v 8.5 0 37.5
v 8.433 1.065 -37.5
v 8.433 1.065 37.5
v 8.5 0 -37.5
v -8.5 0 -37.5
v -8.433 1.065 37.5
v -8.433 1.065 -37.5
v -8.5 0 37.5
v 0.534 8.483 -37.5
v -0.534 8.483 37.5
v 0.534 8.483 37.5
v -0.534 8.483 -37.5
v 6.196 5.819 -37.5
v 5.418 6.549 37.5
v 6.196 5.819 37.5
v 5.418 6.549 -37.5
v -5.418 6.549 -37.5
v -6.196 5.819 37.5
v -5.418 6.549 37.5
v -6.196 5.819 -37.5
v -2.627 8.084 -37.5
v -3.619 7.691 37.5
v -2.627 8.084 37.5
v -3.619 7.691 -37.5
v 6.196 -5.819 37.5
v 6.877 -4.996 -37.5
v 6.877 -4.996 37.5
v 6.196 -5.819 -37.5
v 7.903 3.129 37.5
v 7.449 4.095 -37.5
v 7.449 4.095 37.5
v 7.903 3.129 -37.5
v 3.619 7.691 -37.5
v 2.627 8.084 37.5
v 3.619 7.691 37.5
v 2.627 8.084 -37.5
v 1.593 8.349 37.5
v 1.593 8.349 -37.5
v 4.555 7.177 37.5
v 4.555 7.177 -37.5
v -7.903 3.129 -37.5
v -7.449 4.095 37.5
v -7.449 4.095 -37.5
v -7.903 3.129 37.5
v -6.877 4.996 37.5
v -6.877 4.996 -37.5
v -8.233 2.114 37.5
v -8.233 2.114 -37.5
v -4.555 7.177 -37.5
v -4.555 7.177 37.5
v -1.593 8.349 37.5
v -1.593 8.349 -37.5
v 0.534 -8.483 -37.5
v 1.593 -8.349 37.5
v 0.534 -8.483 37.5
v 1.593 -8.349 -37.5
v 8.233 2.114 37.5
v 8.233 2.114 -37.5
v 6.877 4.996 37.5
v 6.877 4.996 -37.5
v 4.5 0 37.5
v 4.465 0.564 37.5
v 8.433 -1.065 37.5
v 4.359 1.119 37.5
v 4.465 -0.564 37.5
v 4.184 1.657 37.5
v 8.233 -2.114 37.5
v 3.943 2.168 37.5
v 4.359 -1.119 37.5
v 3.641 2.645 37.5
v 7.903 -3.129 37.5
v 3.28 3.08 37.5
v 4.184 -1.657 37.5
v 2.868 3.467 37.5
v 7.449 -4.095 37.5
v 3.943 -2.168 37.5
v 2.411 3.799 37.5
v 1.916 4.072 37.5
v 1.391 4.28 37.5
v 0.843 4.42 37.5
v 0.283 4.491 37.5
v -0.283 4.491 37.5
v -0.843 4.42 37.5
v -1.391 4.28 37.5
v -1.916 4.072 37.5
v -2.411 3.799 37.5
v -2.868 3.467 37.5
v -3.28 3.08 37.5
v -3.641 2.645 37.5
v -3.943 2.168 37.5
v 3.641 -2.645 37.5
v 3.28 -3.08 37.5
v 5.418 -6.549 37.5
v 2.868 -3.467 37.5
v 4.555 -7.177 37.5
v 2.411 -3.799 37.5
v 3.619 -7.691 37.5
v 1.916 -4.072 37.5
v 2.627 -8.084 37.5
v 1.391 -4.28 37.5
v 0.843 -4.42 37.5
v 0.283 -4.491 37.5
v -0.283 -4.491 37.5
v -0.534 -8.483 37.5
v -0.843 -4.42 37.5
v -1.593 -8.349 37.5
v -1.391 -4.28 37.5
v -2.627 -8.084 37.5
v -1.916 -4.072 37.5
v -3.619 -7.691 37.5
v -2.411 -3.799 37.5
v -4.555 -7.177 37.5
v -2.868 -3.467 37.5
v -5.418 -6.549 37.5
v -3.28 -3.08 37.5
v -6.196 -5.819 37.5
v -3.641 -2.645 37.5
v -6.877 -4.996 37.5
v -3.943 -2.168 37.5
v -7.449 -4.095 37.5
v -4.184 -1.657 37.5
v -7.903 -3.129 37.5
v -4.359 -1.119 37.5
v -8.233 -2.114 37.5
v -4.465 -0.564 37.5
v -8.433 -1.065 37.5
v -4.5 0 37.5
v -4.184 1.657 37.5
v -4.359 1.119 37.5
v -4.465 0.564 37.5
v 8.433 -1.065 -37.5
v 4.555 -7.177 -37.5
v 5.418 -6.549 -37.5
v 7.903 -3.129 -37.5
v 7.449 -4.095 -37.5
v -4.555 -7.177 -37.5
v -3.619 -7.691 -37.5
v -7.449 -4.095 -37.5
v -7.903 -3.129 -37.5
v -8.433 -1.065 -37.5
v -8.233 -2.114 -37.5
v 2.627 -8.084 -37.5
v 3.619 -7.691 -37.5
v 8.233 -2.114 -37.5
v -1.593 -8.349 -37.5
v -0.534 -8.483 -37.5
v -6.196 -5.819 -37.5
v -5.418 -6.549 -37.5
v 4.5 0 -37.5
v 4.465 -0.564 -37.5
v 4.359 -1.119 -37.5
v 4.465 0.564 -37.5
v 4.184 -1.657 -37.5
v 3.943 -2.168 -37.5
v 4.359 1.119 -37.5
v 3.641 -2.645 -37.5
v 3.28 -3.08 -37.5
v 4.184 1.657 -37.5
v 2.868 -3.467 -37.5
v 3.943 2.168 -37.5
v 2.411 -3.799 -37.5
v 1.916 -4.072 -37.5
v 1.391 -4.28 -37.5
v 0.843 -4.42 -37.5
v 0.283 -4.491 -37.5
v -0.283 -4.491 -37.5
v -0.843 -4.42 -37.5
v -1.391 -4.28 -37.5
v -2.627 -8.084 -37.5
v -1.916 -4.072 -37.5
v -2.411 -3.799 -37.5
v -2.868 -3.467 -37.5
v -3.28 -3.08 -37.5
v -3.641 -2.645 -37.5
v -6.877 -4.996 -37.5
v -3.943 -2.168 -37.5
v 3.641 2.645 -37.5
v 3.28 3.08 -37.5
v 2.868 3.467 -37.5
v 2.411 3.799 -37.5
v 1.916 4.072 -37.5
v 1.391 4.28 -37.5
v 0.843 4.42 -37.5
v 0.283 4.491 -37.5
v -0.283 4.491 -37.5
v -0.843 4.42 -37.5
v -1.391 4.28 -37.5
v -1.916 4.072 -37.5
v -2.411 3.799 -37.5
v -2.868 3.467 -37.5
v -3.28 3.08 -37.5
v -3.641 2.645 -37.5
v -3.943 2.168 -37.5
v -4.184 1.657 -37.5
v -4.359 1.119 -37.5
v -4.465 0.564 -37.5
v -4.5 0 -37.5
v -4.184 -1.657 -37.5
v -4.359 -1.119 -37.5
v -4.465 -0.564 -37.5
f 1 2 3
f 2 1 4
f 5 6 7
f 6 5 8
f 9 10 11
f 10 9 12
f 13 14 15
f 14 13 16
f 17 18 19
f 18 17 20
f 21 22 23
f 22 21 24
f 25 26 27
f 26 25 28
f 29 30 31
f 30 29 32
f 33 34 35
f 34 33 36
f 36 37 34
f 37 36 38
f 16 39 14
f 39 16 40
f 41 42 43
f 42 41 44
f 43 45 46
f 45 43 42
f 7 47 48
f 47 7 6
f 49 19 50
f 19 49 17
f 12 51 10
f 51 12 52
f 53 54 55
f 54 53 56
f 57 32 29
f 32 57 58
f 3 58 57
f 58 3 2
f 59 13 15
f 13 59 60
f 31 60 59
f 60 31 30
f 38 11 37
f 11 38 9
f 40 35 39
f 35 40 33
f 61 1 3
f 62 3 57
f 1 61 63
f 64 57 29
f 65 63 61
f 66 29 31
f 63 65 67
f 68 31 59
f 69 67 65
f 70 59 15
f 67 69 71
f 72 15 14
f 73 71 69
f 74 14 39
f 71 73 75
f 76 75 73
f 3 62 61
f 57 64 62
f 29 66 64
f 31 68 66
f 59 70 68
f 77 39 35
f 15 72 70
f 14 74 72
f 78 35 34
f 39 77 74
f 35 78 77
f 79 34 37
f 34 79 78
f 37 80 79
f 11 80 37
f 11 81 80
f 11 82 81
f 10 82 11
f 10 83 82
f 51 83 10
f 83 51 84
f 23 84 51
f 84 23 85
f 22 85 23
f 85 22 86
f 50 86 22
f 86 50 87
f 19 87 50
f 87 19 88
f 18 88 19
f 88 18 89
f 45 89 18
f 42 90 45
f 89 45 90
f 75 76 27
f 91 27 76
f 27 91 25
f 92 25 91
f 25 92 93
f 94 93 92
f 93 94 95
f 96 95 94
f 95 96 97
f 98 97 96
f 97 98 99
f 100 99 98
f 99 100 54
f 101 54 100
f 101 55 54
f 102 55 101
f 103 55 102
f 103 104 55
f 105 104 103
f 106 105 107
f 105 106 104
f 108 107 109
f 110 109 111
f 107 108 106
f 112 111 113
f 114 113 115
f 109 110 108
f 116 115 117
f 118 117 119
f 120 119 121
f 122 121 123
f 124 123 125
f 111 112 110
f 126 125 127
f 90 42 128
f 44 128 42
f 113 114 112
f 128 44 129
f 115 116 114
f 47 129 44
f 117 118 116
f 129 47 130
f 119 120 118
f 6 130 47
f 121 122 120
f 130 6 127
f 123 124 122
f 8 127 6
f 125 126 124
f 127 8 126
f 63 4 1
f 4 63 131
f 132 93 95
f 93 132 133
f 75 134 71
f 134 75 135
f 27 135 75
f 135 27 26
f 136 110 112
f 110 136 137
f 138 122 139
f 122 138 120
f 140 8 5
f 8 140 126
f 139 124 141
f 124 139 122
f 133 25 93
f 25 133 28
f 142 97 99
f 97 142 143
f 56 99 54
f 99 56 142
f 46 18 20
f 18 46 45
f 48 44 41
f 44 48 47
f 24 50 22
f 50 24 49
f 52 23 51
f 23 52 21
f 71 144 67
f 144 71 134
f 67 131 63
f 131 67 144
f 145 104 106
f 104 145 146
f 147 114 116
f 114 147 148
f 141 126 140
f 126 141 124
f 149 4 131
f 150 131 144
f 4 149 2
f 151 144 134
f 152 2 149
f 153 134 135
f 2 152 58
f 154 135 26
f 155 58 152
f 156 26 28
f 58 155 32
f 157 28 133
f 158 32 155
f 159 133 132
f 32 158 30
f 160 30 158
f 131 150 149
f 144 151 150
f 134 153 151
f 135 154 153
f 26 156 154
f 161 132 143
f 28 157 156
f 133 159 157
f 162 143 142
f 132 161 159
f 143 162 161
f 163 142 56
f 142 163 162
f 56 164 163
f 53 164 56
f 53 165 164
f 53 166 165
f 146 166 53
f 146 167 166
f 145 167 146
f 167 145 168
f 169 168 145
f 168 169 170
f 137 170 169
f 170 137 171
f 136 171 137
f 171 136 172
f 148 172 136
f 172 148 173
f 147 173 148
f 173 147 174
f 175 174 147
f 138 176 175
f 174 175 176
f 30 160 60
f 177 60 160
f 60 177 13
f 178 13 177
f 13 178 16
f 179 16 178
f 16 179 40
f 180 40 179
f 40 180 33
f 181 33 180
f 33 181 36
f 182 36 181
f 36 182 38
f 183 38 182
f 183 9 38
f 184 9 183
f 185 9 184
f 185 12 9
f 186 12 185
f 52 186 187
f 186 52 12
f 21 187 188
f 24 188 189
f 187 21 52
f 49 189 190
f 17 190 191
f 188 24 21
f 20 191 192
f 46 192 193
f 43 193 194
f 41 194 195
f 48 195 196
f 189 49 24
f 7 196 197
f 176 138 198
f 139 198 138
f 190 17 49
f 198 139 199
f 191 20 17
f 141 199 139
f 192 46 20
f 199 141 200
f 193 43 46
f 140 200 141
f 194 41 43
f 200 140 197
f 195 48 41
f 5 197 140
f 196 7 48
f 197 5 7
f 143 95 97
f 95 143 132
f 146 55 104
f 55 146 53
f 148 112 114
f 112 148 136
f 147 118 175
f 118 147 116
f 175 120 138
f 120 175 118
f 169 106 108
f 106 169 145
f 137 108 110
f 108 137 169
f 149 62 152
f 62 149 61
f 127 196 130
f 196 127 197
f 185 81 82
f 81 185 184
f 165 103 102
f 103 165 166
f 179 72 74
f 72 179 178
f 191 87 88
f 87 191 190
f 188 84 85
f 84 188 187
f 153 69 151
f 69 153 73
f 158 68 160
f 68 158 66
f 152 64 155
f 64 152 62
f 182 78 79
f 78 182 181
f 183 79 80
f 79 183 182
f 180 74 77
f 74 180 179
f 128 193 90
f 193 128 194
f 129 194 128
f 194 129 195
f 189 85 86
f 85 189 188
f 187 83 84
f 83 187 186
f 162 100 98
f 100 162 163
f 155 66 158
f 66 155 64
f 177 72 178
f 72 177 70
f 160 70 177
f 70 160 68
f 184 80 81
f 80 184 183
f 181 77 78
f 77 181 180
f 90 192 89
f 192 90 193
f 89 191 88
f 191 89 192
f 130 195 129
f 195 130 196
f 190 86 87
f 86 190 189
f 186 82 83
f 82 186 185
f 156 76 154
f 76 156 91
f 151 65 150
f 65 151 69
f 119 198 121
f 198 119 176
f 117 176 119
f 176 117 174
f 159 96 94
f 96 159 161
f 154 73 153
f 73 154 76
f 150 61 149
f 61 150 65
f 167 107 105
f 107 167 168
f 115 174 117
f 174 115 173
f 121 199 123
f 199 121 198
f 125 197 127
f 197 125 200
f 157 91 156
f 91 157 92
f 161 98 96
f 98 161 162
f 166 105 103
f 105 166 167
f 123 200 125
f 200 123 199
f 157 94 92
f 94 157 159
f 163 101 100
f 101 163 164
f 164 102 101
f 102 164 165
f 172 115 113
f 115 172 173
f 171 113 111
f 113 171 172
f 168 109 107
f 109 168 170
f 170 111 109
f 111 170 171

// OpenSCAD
$fn = 50;


difference() {
	union() {
		translate(v = [0, 0, -37.5000000000]) {
			cylinder(h = 75, r = 8.5000000000);
		}
	}
	union() {
		translate(v = [0, 0, -100.0000000000]) {
			cylinder(h = 200, r = 4.5000000000);
		}
	}
}
